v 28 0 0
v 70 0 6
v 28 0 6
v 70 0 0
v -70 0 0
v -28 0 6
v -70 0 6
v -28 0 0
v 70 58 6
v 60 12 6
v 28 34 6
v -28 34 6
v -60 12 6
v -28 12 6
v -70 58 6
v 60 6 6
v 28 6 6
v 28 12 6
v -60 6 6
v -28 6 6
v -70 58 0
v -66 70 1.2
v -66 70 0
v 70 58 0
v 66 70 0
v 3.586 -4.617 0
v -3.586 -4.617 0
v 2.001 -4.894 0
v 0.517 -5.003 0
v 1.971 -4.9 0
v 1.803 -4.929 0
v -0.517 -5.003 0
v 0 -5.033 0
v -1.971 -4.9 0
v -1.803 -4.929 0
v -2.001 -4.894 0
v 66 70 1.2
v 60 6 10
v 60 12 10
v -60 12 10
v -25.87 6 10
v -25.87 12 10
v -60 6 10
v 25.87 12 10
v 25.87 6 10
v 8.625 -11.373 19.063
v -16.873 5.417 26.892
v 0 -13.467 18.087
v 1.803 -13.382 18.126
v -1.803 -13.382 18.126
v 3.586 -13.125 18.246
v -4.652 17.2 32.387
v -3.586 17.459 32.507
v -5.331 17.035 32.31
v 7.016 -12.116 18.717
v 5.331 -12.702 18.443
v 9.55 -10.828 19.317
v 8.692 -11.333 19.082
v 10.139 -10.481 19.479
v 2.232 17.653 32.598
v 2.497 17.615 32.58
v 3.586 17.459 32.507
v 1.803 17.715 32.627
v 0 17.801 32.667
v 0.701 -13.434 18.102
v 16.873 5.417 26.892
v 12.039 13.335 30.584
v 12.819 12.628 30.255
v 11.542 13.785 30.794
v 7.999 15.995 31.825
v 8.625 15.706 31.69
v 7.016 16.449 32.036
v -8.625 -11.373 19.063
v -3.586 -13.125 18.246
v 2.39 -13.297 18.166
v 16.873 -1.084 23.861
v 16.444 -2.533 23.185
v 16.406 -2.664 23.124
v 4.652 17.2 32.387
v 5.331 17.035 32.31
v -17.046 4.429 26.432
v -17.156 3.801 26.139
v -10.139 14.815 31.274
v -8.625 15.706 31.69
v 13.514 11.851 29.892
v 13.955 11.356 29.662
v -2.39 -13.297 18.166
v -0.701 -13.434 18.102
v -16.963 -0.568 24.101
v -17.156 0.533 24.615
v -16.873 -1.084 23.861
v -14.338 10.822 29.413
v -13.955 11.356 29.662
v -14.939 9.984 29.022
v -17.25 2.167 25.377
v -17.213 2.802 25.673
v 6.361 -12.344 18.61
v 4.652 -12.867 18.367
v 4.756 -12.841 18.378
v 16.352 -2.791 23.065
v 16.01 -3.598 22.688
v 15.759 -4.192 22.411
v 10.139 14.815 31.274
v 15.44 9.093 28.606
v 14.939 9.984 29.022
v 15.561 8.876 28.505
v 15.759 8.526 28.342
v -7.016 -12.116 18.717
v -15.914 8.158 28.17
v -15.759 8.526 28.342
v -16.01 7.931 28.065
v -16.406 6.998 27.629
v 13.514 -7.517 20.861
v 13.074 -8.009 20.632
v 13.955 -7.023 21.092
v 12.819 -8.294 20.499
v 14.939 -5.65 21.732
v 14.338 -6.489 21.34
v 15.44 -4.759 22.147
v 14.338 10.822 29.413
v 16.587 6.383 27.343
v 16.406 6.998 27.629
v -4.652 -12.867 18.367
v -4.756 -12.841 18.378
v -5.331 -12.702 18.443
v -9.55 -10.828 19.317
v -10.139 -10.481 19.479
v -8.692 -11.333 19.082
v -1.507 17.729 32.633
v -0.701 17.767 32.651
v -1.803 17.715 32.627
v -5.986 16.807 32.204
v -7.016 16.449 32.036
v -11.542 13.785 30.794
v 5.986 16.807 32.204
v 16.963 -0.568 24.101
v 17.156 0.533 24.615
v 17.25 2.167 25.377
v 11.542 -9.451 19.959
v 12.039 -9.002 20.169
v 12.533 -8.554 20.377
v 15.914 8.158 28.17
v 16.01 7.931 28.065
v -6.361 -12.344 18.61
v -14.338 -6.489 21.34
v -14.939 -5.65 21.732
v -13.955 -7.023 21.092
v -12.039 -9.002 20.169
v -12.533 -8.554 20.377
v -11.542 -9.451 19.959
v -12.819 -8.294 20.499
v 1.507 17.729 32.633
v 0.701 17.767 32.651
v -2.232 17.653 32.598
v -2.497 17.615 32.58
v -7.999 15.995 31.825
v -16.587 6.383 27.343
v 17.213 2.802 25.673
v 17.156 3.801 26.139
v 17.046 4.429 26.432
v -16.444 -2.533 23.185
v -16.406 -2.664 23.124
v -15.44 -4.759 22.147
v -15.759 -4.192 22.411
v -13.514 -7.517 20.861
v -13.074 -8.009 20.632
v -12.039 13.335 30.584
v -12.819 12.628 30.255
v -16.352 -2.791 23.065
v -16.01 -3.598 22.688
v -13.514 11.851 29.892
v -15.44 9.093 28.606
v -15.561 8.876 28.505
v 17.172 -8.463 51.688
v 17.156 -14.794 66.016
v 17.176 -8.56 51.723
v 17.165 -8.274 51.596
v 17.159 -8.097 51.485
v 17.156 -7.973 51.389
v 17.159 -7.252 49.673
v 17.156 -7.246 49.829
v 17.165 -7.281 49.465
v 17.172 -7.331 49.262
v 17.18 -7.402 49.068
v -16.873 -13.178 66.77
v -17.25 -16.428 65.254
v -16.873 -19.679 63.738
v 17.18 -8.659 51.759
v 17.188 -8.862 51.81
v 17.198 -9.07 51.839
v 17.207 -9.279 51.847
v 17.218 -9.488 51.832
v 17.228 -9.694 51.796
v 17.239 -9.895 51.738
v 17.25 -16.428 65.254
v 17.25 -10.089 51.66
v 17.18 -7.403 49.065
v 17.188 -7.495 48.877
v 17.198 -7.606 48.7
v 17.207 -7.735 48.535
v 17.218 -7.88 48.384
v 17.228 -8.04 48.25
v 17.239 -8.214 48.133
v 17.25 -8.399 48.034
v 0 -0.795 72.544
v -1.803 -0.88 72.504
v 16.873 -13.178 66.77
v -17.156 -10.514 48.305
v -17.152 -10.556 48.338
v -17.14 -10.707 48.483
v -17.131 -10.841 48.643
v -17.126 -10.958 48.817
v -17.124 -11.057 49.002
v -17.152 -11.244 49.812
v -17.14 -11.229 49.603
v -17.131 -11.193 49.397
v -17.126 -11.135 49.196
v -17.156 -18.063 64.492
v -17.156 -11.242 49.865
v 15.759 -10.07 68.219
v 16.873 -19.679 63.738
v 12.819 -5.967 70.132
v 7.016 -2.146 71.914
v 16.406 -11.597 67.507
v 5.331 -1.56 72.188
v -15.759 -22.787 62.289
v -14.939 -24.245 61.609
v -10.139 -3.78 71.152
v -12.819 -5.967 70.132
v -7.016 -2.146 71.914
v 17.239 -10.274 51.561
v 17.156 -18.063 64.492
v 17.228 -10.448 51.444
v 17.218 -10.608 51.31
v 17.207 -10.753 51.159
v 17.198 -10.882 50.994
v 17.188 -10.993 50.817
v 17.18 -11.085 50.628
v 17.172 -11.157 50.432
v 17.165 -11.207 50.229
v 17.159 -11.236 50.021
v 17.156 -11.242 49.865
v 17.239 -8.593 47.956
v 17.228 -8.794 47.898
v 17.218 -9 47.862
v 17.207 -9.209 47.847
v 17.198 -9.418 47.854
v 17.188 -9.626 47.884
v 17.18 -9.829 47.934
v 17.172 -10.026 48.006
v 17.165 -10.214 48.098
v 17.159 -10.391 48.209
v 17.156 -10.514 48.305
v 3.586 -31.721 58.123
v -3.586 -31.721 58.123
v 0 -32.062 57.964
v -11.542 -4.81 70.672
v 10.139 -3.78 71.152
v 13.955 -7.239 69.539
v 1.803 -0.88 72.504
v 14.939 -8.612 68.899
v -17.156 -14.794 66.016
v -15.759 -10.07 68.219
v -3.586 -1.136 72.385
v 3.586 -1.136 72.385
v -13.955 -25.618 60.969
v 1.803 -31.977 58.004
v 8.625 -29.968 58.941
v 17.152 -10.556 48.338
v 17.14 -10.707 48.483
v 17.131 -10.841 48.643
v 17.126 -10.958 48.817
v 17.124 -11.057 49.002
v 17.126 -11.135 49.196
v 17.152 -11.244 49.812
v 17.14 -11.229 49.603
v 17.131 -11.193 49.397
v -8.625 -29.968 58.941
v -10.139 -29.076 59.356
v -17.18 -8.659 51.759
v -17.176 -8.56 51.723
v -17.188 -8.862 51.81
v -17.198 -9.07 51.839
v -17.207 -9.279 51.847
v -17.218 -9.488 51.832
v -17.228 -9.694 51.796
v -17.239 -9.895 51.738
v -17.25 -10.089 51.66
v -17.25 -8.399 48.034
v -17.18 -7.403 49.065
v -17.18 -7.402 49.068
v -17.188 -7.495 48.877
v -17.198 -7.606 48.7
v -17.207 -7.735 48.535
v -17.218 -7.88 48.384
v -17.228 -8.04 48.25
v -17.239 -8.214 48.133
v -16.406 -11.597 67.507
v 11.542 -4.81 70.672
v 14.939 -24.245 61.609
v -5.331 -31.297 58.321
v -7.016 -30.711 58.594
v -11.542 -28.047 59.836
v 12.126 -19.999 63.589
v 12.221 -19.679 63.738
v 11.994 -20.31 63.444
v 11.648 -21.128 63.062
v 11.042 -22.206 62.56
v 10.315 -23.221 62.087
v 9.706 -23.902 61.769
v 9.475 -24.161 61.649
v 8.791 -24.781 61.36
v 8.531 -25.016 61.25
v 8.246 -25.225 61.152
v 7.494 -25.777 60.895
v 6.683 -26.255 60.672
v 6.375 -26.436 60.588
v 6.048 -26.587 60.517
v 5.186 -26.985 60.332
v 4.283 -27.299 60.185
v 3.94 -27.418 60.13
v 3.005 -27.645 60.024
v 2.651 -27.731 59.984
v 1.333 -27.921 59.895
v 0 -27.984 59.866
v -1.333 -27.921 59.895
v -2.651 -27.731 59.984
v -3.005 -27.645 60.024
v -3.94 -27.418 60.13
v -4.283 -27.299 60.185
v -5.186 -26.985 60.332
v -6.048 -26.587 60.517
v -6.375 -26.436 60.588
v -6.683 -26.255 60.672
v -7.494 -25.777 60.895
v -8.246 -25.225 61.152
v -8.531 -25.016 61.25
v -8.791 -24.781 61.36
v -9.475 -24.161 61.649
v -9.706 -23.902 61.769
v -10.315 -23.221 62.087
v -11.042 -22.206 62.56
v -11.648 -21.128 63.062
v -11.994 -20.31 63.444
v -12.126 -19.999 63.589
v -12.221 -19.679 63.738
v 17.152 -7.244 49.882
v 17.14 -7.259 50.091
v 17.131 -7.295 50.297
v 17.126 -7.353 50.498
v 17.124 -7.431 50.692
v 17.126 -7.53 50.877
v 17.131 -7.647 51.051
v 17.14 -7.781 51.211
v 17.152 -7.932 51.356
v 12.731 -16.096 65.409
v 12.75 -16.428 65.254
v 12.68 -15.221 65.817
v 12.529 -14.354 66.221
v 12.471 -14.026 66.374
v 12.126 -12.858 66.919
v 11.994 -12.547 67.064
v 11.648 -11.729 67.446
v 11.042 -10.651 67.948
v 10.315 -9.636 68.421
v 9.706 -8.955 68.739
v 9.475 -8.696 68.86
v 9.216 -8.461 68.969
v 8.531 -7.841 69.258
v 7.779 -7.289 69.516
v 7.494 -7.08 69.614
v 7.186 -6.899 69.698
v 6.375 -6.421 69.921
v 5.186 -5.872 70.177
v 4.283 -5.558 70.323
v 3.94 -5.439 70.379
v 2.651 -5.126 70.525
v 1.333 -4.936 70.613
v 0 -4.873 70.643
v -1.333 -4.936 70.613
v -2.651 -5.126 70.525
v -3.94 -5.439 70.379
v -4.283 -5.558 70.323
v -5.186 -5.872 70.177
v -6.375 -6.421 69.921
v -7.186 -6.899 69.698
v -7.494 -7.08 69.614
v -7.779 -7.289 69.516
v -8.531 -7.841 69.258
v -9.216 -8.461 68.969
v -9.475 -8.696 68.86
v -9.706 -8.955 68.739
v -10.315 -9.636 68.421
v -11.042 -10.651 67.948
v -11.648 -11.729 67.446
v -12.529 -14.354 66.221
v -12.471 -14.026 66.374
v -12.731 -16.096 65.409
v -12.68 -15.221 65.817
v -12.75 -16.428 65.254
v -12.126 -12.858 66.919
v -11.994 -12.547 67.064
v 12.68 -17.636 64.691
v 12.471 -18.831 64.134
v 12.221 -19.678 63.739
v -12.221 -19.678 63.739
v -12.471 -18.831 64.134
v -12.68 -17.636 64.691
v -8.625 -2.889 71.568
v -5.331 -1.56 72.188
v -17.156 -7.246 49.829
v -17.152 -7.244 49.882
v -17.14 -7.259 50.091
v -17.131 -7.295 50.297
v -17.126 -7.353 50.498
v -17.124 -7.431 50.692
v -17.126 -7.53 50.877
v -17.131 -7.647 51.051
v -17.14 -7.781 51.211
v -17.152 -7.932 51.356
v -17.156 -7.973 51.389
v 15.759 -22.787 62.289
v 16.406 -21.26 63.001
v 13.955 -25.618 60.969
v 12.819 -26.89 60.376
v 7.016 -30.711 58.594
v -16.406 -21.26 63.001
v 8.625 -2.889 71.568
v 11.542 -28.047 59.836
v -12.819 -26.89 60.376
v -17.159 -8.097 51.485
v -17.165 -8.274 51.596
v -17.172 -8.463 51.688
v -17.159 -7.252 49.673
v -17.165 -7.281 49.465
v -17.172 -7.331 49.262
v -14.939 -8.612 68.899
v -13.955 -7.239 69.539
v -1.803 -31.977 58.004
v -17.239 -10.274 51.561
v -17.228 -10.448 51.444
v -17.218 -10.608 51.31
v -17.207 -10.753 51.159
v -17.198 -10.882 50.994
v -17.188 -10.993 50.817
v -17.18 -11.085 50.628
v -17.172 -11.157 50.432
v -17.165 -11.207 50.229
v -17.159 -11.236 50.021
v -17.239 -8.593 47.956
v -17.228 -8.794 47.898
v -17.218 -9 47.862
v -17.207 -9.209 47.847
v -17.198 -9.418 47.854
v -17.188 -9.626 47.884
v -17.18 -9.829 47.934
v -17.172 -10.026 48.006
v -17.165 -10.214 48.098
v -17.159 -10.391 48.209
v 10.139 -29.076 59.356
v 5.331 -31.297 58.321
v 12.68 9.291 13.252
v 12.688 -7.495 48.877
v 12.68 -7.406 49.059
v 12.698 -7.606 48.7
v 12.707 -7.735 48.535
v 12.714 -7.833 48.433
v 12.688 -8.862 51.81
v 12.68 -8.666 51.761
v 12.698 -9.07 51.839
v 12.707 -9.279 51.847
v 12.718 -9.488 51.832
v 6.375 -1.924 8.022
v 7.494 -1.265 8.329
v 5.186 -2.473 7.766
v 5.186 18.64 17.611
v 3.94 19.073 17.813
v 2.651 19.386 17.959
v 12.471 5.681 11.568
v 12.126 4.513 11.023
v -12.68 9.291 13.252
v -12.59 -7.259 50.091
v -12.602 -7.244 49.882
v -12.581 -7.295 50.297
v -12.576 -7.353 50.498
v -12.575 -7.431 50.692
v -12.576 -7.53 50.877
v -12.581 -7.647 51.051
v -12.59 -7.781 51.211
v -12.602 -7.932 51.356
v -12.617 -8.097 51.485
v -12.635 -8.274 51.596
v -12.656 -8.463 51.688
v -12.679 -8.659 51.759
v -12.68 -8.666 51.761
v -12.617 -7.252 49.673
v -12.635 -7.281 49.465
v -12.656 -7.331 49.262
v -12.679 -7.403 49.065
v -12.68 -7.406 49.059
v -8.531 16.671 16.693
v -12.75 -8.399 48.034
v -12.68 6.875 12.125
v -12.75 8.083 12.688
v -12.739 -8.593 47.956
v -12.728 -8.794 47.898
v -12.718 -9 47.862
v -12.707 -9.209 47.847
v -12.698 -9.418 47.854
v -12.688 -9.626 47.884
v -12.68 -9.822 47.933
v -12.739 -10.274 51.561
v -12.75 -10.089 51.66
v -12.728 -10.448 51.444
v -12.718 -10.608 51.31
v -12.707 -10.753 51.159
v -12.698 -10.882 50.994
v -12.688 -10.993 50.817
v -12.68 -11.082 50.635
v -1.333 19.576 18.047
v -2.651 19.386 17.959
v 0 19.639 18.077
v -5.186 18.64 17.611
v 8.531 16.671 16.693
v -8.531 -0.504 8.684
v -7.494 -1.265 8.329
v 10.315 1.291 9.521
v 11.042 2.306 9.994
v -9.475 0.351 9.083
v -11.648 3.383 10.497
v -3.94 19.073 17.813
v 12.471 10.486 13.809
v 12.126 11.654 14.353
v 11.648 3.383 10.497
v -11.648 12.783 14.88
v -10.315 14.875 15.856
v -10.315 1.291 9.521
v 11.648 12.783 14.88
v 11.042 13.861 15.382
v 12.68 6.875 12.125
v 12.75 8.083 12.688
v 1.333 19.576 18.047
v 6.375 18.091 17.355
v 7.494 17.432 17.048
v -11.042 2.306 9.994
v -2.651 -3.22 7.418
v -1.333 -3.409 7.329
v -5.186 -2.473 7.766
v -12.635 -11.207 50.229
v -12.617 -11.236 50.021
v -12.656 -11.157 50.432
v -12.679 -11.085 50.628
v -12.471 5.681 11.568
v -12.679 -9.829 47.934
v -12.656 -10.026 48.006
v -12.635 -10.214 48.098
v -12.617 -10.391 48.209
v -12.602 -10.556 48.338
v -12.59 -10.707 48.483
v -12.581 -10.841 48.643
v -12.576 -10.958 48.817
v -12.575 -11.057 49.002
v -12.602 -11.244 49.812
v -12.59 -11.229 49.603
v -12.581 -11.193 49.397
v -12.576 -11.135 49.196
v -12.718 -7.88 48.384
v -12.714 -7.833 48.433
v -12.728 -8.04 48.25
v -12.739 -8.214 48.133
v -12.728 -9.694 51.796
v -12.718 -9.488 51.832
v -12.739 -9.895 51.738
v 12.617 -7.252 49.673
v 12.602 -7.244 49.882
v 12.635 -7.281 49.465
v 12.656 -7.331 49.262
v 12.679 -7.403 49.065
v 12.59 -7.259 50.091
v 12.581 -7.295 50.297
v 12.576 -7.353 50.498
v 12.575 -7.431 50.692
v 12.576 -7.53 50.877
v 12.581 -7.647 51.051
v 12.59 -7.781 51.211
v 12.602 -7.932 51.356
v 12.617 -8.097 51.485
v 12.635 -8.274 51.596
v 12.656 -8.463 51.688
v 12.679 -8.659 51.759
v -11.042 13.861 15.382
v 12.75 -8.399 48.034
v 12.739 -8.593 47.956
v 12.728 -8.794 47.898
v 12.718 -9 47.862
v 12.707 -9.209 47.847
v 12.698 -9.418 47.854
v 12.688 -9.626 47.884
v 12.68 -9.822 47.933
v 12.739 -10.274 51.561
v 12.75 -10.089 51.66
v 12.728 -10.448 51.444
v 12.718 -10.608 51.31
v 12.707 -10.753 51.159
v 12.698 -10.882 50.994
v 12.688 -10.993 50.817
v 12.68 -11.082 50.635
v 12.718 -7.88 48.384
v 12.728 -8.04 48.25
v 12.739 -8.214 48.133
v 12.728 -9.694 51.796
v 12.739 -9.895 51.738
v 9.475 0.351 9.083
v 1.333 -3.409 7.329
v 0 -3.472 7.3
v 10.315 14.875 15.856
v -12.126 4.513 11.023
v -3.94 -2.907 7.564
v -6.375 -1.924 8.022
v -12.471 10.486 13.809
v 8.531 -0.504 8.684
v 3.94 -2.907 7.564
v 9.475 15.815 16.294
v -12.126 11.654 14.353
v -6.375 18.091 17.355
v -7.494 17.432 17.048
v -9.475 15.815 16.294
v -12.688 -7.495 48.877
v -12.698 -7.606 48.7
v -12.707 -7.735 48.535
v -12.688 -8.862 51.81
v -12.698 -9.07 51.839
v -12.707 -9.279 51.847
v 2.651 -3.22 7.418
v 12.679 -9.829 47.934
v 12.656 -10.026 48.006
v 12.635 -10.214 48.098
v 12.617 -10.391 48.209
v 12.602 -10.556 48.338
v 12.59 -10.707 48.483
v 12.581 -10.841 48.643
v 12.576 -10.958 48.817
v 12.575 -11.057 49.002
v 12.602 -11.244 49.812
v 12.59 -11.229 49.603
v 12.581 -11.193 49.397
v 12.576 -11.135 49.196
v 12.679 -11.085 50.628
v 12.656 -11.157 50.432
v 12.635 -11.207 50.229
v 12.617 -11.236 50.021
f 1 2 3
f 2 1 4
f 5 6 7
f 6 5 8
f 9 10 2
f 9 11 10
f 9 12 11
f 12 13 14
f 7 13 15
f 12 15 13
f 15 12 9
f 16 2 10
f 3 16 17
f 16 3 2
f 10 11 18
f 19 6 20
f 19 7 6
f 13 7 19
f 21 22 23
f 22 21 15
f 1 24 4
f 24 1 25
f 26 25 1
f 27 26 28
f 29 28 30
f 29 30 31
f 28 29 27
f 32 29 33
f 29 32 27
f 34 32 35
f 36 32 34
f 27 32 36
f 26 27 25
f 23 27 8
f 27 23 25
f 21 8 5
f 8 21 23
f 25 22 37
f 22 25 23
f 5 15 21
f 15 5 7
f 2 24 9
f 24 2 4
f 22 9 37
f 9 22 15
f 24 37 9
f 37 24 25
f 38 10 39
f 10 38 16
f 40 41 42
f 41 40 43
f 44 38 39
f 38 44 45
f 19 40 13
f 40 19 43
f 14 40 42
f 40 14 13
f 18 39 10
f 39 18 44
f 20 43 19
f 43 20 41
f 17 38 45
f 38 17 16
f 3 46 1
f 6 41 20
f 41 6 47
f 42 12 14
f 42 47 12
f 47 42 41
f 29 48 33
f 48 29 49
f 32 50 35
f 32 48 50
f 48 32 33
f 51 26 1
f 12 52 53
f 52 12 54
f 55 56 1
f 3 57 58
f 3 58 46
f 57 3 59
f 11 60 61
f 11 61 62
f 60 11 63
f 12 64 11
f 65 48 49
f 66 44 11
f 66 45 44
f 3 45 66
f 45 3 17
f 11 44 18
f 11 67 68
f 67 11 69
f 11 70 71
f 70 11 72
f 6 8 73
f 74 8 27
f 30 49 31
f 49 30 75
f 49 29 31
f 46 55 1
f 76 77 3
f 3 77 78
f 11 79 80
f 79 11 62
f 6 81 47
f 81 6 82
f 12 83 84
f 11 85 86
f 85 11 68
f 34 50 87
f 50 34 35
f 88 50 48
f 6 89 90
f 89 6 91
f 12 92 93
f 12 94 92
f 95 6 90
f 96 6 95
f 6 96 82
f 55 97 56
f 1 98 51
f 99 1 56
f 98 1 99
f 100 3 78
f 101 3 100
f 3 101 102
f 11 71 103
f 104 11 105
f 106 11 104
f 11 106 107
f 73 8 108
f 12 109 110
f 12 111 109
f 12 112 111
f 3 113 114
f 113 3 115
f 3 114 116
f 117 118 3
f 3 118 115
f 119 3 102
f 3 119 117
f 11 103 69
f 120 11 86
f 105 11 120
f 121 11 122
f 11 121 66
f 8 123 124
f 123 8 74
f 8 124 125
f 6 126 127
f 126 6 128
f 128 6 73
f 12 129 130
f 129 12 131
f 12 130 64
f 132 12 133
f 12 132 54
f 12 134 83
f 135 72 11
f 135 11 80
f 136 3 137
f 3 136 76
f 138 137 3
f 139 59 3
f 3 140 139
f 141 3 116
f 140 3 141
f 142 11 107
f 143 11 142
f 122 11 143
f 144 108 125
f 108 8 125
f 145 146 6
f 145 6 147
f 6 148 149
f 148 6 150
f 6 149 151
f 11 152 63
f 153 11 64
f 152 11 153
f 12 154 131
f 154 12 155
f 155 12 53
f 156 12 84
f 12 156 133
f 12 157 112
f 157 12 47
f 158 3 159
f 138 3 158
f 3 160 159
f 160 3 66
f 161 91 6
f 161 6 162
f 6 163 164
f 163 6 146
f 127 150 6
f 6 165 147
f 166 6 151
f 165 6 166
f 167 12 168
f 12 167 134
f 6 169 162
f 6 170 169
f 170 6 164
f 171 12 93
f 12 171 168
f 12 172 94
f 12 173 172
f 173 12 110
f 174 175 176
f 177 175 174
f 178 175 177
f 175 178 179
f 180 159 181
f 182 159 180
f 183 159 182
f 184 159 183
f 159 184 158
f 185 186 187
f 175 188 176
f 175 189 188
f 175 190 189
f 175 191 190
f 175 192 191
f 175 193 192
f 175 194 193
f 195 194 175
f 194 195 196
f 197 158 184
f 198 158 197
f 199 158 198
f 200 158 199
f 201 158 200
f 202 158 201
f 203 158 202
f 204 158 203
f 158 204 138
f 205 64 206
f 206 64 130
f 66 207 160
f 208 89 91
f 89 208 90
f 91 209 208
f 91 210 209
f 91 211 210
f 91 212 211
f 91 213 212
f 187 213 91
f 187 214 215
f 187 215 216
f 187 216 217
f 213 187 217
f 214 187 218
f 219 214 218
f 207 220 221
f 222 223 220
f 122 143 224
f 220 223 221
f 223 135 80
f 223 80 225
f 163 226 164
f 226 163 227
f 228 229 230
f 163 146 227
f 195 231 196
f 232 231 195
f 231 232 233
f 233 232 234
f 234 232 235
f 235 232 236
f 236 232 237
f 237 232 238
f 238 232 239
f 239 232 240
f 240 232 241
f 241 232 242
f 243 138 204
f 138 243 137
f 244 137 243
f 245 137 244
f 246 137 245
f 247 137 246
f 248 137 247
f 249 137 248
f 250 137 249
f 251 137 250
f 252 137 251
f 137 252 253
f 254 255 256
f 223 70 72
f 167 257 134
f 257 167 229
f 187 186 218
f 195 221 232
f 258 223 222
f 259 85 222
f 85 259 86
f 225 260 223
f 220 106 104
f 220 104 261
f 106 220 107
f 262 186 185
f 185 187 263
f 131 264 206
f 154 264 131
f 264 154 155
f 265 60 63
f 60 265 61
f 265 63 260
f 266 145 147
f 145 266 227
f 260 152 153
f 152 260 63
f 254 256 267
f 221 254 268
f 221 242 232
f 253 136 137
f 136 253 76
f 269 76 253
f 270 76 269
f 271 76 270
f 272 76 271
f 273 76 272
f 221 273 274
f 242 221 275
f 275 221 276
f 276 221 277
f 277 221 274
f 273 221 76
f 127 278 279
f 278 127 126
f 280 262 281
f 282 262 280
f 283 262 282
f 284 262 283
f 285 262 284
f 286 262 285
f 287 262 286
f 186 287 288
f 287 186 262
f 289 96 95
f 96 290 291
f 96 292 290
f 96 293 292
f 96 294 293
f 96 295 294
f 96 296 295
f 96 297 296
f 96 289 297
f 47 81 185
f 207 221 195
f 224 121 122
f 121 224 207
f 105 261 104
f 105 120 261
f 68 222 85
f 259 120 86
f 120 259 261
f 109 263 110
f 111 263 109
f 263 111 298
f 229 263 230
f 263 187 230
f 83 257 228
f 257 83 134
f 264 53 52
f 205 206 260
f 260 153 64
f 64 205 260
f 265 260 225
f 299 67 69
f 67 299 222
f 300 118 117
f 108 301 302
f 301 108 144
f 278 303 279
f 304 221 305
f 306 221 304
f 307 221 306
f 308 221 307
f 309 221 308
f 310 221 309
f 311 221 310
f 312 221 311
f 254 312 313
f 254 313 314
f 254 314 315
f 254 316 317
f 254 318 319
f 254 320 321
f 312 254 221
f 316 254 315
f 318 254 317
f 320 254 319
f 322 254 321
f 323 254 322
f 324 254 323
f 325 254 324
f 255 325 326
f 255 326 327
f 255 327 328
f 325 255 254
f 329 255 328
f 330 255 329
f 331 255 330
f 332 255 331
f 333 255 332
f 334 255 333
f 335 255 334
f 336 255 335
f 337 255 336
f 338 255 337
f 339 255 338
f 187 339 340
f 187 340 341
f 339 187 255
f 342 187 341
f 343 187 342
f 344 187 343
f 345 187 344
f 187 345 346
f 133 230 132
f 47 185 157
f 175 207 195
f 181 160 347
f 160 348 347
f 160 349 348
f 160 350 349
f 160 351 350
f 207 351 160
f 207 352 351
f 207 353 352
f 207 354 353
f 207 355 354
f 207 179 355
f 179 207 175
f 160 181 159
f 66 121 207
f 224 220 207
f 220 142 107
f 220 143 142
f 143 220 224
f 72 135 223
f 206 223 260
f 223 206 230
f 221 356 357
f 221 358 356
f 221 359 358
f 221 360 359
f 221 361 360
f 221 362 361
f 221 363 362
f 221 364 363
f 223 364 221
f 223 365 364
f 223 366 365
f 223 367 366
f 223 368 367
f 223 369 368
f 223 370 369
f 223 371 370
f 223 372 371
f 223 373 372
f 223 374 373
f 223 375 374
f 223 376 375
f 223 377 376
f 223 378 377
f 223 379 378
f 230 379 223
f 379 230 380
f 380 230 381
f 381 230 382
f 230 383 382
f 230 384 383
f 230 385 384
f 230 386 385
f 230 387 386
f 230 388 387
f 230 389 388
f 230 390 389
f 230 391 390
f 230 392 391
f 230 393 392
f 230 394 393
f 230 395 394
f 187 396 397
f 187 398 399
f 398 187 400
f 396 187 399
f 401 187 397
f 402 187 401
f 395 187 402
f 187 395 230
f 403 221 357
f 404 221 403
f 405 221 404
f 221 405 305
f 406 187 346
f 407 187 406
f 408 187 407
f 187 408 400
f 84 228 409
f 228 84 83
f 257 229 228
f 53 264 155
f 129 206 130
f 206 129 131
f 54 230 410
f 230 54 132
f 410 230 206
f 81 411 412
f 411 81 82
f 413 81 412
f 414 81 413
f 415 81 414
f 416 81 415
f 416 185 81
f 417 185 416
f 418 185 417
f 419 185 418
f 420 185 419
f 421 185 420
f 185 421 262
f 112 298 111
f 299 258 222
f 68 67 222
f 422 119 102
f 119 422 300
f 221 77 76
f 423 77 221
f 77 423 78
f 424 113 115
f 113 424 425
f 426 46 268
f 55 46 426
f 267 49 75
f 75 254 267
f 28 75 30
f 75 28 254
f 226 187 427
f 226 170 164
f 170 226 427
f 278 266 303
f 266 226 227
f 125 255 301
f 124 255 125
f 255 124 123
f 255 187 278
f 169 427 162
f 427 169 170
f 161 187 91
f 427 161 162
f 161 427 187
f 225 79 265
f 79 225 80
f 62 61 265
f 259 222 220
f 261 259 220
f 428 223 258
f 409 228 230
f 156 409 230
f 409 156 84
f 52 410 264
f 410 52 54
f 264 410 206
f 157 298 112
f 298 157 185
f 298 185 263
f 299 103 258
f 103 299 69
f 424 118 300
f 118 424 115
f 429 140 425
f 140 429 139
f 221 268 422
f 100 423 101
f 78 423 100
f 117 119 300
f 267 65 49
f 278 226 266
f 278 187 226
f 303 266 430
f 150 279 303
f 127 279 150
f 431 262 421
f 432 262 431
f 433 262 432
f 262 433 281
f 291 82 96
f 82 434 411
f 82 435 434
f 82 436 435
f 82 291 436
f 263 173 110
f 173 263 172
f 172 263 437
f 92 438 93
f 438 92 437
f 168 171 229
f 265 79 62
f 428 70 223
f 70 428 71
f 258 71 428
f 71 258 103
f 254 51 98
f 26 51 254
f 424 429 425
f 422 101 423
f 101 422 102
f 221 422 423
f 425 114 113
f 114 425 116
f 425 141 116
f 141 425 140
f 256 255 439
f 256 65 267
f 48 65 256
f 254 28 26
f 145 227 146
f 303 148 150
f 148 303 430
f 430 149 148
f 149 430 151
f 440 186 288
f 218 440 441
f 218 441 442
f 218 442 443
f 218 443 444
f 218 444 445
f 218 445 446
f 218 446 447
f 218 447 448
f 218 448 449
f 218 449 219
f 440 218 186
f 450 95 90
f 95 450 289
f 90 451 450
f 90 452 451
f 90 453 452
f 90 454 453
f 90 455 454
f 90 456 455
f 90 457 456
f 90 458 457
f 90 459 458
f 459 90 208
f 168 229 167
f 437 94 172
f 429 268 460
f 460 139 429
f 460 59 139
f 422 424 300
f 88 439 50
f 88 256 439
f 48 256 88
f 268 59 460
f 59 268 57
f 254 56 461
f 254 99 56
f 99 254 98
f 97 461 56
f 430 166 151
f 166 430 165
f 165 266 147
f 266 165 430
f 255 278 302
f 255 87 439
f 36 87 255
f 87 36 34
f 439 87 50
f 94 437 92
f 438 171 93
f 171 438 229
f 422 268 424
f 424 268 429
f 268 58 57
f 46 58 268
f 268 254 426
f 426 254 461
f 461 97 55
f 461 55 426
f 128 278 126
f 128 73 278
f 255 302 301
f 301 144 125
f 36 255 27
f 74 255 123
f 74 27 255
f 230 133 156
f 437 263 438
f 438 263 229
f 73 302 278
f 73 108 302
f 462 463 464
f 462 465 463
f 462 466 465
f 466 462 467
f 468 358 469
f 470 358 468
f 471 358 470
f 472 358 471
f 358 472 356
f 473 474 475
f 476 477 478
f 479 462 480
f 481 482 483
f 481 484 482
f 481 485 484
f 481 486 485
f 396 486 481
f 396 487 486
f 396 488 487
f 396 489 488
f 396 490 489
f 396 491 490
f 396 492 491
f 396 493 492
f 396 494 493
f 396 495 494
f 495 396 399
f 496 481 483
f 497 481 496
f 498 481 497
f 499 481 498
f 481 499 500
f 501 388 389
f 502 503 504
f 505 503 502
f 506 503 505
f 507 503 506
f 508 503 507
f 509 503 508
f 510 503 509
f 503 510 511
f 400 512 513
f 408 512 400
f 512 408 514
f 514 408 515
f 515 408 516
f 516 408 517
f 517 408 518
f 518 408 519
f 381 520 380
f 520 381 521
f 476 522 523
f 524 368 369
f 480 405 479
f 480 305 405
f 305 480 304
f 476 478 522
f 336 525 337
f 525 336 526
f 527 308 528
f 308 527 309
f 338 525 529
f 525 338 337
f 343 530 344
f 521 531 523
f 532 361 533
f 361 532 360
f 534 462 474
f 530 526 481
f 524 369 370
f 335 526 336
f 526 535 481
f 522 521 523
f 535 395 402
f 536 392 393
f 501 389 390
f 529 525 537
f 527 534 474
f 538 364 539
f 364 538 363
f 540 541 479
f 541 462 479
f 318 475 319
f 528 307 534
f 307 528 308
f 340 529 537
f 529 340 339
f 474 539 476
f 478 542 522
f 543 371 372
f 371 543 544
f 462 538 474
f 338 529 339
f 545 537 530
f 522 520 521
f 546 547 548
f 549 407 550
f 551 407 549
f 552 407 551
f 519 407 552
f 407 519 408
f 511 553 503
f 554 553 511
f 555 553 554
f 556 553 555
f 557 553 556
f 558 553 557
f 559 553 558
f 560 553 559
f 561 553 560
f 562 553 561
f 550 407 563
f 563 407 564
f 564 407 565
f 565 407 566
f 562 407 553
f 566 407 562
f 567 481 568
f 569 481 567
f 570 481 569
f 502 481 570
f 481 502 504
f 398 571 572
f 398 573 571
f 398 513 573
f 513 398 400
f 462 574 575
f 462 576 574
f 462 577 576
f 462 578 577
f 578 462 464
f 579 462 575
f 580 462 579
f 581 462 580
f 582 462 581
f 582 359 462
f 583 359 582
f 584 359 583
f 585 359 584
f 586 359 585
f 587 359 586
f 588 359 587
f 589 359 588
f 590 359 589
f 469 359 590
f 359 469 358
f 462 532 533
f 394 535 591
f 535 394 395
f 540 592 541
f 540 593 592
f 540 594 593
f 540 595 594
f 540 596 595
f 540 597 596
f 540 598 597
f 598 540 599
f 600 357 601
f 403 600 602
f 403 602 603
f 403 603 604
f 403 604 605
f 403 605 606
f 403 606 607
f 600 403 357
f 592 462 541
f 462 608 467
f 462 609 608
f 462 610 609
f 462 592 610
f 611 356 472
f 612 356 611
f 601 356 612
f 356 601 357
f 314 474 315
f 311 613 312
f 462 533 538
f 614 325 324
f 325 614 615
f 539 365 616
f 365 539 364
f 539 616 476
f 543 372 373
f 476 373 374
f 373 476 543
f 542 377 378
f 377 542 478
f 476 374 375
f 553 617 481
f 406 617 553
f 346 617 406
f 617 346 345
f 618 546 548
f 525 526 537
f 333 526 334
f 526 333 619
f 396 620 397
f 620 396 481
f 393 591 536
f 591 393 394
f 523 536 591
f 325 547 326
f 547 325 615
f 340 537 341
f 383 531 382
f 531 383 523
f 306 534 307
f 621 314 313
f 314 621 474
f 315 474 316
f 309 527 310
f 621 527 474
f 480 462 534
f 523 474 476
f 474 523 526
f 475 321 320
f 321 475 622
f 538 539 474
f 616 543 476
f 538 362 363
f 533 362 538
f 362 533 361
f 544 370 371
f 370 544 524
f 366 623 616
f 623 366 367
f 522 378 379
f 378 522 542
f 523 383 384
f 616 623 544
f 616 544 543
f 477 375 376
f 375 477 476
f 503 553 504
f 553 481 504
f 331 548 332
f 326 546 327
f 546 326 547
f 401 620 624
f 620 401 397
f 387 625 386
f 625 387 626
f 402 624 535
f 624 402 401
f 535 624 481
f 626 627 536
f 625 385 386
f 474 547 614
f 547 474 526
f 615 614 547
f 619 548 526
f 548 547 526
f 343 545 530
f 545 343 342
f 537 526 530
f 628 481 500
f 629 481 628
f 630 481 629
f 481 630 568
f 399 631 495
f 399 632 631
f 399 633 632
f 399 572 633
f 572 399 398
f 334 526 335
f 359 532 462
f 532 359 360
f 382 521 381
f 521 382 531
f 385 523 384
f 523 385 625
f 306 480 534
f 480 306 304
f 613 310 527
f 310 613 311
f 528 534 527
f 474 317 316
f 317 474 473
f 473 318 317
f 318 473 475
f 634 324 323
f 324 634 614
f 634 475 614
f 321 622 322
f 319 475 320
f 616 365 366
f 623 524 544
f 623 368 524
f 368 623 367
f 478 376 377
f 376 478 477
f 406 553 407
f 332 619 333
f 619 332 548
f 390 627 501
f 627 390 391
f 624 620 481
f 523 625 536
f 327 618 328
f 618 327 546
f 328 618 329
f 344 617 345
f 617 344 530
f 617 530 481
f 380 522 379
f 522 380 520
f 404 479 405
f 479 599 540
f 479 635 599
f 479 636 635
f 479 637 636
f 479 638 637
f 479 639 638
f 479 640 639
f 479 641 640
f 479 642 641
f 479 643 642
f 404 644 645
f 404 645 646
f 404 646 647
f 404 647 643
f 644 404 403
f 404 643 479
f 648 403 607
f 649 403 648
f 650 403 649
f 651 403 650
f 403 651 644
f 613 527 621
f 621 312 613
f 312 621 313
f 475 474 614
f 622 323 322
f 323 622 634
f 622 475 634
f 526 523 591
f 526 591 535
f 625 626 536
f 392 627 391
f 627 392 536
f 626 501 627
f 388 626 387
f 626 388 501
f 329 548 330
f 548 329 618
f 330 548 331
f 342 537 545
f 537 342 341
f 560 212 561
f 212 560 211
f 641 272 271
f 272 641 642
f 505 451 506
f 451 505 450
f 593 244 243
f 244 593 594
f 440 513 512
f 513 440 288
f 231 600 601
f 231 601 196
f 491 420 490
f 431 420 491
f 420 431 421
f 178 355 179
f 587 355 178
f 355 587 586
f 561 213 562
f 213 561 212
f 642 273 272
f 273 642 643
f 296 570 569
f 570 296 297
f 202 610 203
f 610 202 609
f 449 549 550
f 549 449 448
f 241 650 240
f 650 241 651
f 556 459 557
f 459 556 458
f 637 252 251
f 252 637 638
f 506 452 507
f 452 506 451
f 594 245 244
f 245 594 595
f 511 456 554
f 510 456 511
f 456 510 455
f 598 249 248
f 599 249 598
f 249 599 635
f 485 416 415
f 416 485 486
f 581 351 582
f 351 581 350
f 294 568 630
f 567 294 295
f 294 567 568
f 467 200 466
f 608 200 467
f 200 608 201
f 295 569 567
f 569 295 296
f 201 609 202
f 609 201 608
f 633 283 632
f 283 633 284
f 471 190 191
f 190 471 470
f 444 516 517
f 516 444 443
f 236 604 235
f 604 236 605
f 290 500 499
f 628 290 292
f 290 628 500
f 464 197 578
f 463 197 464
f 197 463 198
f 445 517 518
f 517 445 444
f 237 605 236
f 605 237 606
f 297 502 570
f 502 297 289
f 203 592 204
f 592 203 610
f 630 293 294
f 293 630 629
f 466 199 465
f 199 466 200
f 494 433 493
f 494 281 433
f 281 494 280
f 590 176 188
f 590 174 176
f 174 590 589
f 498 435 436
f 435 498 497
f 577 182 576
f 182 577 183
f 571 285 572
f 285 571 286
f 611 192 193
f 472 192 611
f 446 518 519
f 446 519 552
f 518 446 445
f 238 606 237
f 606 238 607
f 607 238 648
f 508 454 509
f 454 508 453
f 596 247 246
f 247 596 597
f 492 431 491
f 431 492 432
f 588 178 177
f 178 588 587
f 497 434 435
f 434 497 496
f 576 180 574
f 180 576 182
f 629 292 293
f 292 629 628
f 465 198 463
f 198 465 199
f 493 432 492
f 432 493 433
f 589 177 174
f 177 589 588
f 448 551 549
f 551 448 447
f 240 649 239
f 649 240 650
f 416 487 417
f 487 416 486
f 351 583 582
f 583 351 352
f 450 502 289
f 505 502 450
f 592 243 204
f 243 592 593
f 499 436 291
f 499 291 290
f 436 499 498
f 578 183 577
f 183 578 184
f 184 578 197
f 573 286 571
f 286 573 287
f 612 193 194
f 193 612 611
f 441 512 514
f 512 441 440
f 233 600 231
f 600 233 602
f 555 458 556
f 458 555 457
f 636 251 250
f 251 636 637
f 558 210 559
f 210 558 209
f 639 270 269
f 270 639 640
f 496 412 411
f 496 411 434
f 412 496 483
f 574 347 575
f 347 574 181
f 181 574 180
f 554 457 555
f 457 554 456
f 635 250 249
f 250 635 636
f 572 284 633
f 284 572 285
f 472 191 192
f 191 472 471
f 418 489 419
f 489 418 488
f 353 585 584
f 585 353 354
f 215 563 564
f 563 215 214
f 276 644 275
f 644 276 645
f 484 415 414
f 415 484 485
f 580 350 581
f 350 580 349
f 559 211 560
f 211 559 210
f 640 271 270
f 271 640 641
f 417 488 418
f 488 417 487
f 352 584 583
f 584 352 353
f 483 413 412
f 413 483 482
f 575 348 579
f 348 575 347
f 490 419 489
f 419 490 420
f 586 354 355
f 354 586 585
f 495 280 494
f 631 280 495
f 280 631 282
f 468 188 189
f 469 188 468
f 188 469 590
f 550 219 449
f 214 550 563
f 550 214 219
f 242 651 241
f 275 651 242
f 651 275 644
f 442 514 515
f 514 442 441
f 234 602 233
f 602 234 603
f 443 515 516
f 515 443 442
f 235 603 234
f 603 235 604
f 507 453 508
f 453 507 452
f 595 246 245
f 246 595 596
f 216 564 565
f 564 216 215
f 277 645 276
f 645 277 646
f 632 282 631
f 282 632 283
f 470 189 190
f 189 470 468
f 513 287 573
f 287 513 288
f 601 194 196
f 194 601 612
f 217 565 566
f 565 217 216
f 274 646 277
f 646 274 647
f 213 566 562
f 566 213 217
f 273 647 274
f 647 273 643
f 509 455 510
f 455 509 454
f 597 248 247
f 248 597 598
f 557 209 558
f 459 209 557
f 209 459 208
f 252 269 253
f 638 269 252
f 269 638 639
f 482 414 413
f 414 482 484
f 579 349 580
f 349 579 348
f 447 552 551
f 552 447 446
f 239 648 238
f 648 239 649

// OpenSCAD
// @title Hoe Head
// @category Hand Tools
// @material PETG or ABS (PLA becomes brittle in sun)
// @print 5 perimeters, 40% infill, blade flat on bed, no supports
// @summary Weeding / furrowing hoe blade with an angled socket for a 25mm wooden handle.
// @use Fit a 1.2-1.5m straight stick (25mm). Pin through the side hole. Best for weeding and shallow furrows in worked soil, not for breaking hard ground.

blade_w = 140; blade_d = 70; blade_t = 6;
handle_d = 25.5; wall = 4.5; socket_len = 60; tilt = 25;
$fn = 60;
socket_od = handle_d + 2*wall;

module socket_solid(h) {
  translate([0,14,0]) rotate([tilt,0,0]) cylinder(d=socket_od, h=h);
}
intersection() {
  difference() {
    union() {
      // blade with bevelled front edge
      hull() {
        translate([-blade_w/2,0,0]) cube([blade_w, blade_d-12, blade_t]);
        translate([-blade_w/2+4,0,0]) cube([blade_w-8, blade_d, 1.2]);
      }
      // stiffening rib
      translate([-blade_w/2+10,6,0]) cube([blade_w-20, 6, blade_t+4]);
      hull() {
        translate([-28,0,0]) cube([56,34,blade_t]);
        socket_solid(28);
      }
      socket_solid(socket_len + 12);
    }
    translate([0,14,0]) rotate([tilt,0,0]) translate([0,0,14]) cylinder(d=handle_d, h=socket_len+20);
    translate([0,14,0]) rotate([tilt,0,0]) translate([0,0,socket_len-5]) rotate([0,90,0]) cylinder(d=4, h=socket_od+4, center=true);
  }
  translate([-200,-200,0]) cube([400,400,200]);
}
